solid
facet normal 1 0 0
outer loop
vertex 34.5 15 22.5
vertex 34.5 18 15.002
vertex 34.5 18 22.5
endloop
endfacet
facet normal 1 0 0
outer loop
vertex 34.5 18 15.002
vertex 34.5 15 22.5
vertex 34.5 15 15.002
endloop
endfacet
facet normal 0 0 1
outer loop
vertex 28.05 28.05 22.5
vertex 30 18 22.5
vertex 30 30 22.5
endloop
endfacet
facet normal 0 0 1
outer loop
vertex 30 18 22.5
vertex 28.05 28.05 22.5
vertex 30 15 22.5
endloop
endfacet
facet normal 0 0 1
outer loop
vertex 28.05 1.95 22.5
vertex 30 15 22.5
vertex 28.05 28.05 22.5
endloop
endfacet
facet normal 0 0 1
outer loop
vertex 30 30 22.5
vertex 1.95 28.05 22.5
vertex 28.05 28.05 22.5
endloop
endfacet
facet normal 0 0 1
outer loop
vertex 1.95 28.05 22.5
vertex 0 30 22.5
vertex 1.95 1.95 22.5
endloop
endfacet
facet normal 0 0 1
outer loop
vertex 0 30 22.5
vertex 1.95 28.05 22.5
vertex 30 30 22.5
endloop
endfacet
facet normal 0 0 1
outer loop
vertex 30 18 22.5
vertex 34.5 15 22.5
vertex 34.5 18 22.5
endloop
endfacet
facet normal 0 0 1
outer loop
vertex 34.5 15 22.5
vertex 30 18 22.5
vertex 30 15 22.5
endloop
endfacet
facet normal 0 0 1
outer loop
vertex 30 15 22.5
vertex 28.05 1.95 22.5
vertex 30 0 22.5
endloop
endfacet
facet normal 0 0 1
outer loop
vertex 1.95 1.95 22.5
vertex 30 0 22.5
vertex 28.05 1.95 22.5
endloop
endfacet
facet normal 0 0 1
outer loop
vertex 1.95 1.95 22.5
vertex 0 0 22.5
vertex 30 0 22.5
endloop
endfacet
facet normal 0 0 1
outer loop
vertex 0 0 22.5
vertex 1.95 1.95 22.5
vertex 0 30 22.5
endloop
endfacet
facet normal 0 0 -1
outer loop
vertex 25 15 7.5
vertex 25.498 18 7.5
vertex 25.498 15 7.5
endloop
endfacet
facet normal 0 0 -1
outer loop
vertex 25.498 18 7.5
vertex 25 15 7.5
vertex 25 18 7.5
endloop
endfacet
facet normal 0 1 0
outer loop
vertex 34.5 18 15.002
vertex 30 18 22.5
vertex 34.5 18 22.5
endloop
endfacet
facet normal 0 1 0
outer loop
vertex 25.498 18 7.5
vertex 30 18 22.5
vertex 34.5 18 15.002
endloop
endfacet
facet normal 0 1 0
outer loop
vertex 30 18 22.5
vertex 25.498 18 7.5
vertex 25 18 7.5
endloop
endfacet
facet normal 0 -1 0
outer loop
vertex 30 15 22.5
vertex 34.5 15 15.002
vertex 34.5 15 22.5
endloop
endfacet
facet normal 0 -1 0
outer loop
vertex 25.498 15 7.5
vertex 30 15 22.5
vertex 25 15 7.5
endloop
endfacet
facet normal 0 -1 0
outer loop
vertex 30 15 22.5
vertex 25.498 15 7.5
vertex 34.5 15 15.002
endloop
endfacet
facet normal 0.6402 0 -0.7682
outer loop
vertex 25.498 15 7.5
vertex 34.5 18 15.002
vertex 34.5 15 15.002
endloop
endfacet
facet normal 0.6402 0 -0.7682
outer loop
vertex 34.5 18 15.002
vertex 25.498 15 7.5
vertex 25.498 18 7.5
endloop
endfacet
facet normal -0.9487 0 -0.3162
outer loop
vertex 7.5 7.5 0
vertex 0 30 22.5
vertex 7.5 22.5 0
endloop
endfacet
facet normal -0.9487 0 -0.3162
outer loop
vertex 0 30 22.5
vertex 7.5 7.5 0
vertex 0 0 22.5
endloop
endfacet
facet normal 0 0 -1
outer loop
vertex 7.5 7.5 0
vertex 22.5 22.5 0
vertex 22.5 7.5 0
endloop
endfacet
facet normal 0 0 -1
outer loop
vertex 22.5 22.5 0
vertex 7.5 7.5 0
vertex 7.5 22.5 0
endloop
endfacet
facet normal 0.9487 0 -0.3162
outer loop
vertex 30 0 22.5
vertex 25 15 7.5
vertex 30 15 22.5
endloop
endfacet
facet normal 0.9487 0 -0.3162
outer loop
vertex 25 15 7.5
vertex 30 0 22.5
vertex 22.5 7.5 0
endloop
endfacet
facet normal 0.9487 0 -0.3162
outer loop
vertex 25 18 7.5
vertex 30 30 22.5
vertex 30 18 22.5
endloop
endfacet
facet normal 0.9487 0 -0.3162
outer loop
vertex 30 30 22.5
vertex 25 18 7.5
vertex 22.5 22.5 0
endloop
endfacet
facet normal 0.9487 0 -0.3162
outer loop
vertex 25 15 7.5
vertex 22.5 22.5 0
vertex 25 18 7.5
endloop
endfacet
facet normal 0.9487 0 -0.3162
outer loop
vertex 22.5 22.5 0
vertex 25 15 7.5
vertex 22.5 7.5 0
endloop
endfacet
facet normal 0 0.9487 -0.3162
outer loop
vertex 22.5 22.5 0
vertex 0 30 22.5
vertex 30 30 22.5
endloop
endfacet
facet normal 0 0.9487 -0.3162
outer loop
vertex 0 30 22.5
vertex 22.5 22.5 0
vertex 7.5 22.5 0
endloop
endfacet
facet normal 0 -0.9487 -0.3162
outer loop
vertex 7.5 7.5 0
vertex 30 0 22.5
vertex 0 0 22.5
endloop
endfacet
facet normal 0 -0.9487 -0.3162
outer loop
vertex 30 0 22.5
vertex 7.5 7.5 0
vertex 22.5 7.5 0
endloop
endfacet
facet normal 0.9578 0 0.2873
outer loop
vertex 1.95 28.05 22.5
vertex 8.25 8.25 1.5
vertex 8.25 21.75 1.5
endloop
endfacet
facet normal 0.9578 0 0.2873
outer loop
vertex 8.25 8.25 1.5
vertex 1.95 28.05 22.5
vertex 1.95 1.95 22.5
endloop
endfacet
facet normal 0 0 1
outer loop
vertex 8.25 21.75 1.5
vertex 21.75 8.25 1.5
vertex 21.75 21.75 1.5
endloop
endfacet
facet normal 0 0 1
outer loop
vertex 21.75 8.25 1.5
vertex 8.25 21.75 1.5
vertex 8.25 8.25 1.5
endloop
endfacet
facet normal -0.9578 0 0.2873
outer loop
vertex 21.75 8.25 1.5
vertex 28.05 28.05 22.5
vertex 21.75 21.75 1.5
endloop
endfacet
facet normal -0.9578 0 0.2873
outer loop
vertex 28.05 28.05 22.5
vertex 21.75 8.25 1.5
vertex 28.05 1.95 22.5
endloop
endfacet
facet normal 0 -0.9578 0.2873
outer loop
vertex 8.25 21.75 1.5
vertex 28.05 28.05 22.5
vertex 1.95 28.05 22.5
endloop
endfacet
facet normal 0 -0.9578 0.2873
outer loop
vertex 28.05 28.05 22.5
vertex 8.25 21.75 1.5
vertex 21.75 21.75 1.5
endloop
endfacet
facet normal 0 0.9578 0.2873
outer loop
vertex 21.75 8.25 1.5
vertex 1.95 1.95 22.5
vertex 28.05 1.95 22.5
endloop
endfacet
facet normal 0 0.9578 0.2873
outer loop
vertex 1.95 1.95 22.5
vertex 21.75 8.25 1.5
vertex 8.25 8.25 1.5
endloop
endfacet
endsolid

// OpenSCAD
// Generated by SolidPython 1.1.3 on 2022-05-02 20:13:59


scale(v = 1.5000000000) {
	difference() {
		union() {
			translate(v = [10, 10, 0]) {
				linear_extrude(height = 15, scale = 2.0000000000) {
					square(center = true, size = [10, 10]);
				}
			}
			translate(v = [11, 10, 5.0000000000]) {
				scale(v = [1.2000000000, 1, 1]) {
					difference() {
						cube(size = [10, 2, 10]);
						translate(v = [4.9990000000, -0.0010000000, 0]) {
							rotate(a = [0, 45, 0]) {
								cube(size = [10.0020000000, 2.0020000000, 10]);
							}
						}
					}
				}
			}
		}
		translate(v = [10, 10, 0]) {
			translate(v = [0, 0, 1.0000000000]) {
				linear_extrude(height = 15.0010000000, scale = 2.0000000000) {
					square(center = true, size = [9.0000000000, 9.0000000000]);
				}
			}
		}
	}
}
/***********************************************
*********      SolidPython code:      **********
************************************************
 
import json
from solid import *
from solid.utils import *
import numpy as np
import itertools
import functools as fn 
import qrcode
import colour
from typing import NamedTuple, List

np.random.seed(47)
EPS = 0.001
BOX_DOT_WITH = 1 
BOX_DOT_HEIGHT = 2 
TAZA_WIDTH = 10 
TAZA_HEIGHT = 15 
HANDLE_WITHT = 2
HANDLE_HEIGHT = 10 
HANDLE_OUT = -1 
HANDLE_SCALE = 1.2
TAZA_BORDER = 1.0

def load_guests_urls() -> List[str]:
    with open("./invitados.json") as f:
        guests_ids = json.load(f)
        return [ f"https://petrous.day?id={v}" for v in guests_ids.keys() ]

def qr_shape_from_data(data: str) -> OpenSCADObject:
    qr = qrcode.QRCode(
        version=1,
        error_correction=qrcode.constants.ERROR_CORRECT_L,
        box_size=10,
        border=2,
    )
    qr.add_data(data)

    qr.make(fit=True)
    qr_matrix = np.array(qr.get_matrix())
    r = np.random.randn
    qr = [(translate([i * BOX_DOT_WITH - EPS, k * BOX_DOT_WITH - EPS, 0])
            (cube([BOX_DOT_WITH + 2 * EPS, BOX_DOT_WITH + 2 * EPS, BOX_DOT_HEIGHT])))
            for i, k in np.ndindex(qr_matrix.shape)
            if not qr_matrix[i, k]]

    qr = [color([0.5, 0.4, 0.4])(c) for c in qr]
    qr_shape = fn.reduce(lambda a, b: a + b, qr) 
    return qr_shape


class CoffeCupInfo(NamedTuple):
    cup: OpenSCADObject
    hole: OpenSCADObject

def coffe_cup() -> CoffeCupInfo: 
    taza = square([TAZA_WIDTH, TAZA_WIDTH], center=True)
    taza = linear_extrude(height=TAZA_HEIGHT, scale=2.0)(taza)

    taza_hole = square([TAZA_WIDTH - TAZA_BORDER, TAZA_WIDTH - TAZA_BORDER], center=True)
    taza_hole = linear_extrude(height=TAZA_HEIGHT + EPS, scale=2.0)(taza_hole)
    taza_hole = translate([0, 0, TAZA_BORDER])(taza_hole)

    handle = cube([HANDLE_HEIGHT, HANDLE_WITHT, HANDLE_HEIGHT])
    handle_triangle_drill = rotate([0, 45, 0])(
            cube([HANDLE_HEIGHT + 2 * EPS, HANDLE_WITHT + 2 * EPS, HANDLE_HEIGHT]))
    handle = handle - translate([HANDLE_HEIGHT / 2 - EPS, -EPS, 0])(handle_triangle_drill)
    handle = scale([HANDLE_SCALE, 1, 1])(handle)

    handle = translate([HANDLE_WITHT + TAZA_WIDTH + HANDLE_OUT, TAZA_WIDTH , TAZA_HEIGHT / 3])(handle)
    taza = translate([TAZA_WIDTH, TAZA_WIDTH, 0])(taza)
    taza_hole = translate([TAZA_WIDTH, TAZA_WIDTH, 0])(taza_hole)
    return CoffeCupInfo(cup = taza + handle - taza_hole,
                        hole = taza_hole)

def generate_drink(link="random_link"):
    qr = translate([TAZA_BORDER * 2 * 1.19, TAZA_BORDER * 2 * 1.19, 1.5 * TAZA_HEIGHT - EPS * 4])(
            (scale(0.68)(qr_shape_from_data(link))))

    drink = translate([TAZA_BORDER, TAZA_BORDER, 0])(scale(0.95)(coffe_cup().hole))
    return scale(1.5)(drink) + scale([1.29, 1.29, 1.0])(qr)

if __name__ == '__main__':
    urls = load_guests_urls() 
    print(len(urls))
    print(urls[0])
    scad_render_to_file(generate_drink(urls[0]), "drink.scad")
    scad_render_to_file(scale(1.5)(coffe_cup().cup), "cup.scad")

 
 
************************************************/
